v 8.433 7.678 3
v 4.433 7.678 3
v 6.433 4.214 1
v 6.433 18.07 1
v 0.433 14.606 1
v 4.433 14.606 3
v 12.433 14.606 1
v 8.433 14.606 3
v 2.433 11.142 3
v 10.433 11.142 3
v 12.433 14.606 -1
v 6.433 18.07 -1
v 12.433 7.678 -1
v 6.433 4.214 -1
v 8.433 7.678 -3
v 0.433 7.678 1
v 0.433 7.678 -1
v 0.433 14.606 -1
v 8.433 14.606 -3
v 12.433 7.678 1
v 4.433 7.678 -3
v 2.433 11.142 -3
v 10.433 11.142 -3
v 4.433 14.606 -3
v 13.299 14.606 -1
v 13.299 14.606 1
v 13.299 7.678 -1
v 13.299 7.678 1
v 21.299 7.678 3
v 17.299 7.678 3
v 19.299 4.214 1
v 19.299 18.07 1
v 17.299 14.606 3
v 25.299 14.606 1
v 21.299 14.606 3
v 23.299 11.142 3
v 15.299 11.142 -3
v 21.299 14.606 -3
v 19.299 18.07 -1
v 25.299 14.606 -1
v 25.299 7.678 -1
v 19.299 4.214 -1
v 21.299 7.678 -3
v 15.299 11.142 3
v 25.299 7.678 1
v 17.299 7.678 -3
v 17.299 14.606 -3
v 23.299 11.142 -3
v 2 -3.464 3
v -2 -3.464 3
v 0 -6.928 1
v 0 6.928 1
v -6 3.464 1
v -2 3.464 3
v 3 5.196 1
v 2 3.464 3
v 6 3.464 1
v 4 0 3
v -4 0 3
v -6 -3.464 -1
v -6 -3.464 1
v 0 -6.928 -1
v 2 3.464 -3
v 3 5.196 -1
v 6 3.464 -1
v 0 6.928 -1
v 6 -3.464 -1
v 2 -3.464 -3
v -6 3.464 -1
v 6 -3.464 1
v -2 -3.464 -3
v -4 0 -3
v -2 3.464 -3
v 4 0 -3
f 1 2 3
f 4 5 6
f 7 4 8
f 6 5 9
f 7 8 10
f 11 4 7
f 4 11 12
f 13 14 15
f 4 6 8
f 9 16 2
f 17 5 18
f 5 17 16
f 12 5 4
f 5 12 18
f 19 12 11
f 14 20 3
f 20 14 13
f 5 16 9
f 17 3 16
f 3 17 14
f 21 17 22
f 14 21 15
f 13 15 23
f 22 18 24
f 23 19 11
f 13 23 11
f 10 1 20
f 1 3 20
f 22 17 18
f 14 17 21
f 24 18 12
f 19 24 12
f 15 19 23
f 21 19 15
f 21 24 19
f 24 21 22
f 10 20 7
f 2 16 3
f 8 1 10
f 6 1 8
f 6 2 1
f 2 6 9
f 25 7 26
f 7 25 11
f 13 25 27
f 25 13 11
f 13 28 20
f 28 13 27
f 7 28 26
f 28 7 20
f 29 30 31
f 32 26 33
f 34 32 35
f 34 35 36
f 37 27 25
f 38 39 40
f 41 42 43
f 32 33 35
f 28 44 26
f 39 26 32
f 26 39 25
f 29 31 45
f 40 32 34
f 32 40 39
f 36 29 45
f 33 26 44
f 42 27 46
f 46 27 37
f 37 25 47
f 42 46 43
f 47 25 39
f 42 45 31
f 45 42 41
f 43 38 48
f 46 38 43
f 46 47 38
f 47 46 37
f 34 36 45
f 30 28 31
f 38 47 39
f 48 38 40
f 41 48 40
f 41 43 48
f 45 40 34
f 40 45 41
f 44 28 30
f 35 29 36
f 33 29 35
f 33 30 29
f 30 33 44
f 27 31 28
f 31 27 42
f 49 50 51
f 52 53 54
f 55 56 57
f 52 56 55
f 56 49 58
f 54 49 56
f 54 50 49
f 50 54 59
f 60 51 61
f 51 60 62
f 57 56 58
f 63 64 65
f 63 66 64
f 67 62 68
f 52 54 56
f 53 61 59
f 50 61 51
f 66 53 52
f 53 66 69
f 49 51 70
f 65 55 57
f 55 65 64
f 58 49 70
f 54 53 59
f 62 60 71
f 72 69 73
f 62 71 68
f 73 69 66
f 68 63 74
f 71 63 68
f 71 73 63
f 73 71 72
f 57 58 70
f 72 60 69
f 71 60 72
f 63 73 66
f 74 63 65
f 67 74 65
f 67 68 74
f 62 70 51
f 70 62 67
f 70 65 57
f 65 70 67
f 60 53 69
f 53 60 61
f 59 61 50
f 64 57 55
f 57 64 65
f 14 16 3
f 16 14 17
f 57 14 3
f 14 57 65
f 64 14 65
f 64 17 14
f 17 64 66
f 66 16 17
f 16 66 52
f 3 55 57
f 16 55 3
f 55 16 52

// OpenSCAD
// file: gem-common.scad
angles = [for(i = [0:5]) i * (360 / 6)];

inner_poly_radius=8 * cos(60);
outer_poly_radius=8 * cos(30);
outer_poly_z=1;
inner_poly_z=3;


gap_between_gems = cos(30);
distance_to_corner = cos(30) * outer_poly_radius * 2 + gap_between_gems;


module edge_connector(angle = 0) {
    function make_point_2d(r, angle, height) = [r * sin(angle), height];
    
    points = [
        make_point_2d(outer_poly_radius, 30, outer_poly_z),
        make_point_2d(outer_poly_radius, -30, outer_poly_z),
        make_point_2d(outer_poly_radius, -30, -outer_poly_z),
        make_point_2d(outer_poly_radius, 30, -outer_poly_z),
    ];
    
    rotate([0,0,angle]) {
        translate([(distance_to_corner - gap_between_gems) / 2,0,0]){
            rotate([90, 0, 90]) {
                linear_extrude(gap_between_gems) {
                    polygon(points);
                }
            }
        }
    }
}

module move(distance, angle) {
    translate([distance * cos(angle), distance * sin(angle), 0]) {
        children();
    }
}


module corner_connector(angle=0) {
    r = 0.5;
    rotate_angle = angle + 30;
    move(outer_poly_radius + r, rotate_angle) {
        translate([0,0, -outer_poly_z]) {
            rotate([0,0,-rotate_angle]) {
                cylinder($fn=3, r=r, h=outer_poly_z * 2);
            }
        }
    }
}

module gem() {
    function make_point(r, angle, height) = [r * cos(angle), r * sin(angle), height];
    
    top_poly = [for(th = angles) make_point(inner_poly_radius, th, inner_poly_z)];
    top_outer_poly = [for(th = angles) make_point(outer_poly_radius, th + 30, outer_poly_z)];
    bottom_outer_poly = [for(th = angles) make_point(outer_poly_radius, th + 30, -outer_poly_z)];
    bottom_poly = [for(th = angles) make_point(inner_poly_radius, th, -inner_poly_z)];
 
    function rot(n, base) = (n + 1 - base) % 6 + base;
    
    faces = [
        [5, 4, 3, 2, 1, 0],
        for(i = [0:5]) [i, (i + 1) % 6, i + 6],
        for(i = [6:11]) [i, (i - 5) % 6, rot(i, 6)],
        for(i = [6:11]) [i, rot(i, 6), rot(i, 6) + 6, i + 6],
        for(i = [12:17]) [i, rot(i, 12), rot(i, 12) + 6],
        for(i = [18:23]) [i, i-6, rot(i, 18)],
        [18, 19, 20, 21, 22, 23],
    ];
    
    polyhedron(
        concat(
            top_poly,
            top_outer_poly,
            bottom_outer_poly,
            bottom_poly
        ),
        faces
    );
}
// main file
include <./gem-common.scad>

gem();
edge_connector(60);
move(distance_to_corner, 60) {
    gem();
    edge_connector(0);
    move(distance_to_corner, 0) {
        gem();
    }
}
